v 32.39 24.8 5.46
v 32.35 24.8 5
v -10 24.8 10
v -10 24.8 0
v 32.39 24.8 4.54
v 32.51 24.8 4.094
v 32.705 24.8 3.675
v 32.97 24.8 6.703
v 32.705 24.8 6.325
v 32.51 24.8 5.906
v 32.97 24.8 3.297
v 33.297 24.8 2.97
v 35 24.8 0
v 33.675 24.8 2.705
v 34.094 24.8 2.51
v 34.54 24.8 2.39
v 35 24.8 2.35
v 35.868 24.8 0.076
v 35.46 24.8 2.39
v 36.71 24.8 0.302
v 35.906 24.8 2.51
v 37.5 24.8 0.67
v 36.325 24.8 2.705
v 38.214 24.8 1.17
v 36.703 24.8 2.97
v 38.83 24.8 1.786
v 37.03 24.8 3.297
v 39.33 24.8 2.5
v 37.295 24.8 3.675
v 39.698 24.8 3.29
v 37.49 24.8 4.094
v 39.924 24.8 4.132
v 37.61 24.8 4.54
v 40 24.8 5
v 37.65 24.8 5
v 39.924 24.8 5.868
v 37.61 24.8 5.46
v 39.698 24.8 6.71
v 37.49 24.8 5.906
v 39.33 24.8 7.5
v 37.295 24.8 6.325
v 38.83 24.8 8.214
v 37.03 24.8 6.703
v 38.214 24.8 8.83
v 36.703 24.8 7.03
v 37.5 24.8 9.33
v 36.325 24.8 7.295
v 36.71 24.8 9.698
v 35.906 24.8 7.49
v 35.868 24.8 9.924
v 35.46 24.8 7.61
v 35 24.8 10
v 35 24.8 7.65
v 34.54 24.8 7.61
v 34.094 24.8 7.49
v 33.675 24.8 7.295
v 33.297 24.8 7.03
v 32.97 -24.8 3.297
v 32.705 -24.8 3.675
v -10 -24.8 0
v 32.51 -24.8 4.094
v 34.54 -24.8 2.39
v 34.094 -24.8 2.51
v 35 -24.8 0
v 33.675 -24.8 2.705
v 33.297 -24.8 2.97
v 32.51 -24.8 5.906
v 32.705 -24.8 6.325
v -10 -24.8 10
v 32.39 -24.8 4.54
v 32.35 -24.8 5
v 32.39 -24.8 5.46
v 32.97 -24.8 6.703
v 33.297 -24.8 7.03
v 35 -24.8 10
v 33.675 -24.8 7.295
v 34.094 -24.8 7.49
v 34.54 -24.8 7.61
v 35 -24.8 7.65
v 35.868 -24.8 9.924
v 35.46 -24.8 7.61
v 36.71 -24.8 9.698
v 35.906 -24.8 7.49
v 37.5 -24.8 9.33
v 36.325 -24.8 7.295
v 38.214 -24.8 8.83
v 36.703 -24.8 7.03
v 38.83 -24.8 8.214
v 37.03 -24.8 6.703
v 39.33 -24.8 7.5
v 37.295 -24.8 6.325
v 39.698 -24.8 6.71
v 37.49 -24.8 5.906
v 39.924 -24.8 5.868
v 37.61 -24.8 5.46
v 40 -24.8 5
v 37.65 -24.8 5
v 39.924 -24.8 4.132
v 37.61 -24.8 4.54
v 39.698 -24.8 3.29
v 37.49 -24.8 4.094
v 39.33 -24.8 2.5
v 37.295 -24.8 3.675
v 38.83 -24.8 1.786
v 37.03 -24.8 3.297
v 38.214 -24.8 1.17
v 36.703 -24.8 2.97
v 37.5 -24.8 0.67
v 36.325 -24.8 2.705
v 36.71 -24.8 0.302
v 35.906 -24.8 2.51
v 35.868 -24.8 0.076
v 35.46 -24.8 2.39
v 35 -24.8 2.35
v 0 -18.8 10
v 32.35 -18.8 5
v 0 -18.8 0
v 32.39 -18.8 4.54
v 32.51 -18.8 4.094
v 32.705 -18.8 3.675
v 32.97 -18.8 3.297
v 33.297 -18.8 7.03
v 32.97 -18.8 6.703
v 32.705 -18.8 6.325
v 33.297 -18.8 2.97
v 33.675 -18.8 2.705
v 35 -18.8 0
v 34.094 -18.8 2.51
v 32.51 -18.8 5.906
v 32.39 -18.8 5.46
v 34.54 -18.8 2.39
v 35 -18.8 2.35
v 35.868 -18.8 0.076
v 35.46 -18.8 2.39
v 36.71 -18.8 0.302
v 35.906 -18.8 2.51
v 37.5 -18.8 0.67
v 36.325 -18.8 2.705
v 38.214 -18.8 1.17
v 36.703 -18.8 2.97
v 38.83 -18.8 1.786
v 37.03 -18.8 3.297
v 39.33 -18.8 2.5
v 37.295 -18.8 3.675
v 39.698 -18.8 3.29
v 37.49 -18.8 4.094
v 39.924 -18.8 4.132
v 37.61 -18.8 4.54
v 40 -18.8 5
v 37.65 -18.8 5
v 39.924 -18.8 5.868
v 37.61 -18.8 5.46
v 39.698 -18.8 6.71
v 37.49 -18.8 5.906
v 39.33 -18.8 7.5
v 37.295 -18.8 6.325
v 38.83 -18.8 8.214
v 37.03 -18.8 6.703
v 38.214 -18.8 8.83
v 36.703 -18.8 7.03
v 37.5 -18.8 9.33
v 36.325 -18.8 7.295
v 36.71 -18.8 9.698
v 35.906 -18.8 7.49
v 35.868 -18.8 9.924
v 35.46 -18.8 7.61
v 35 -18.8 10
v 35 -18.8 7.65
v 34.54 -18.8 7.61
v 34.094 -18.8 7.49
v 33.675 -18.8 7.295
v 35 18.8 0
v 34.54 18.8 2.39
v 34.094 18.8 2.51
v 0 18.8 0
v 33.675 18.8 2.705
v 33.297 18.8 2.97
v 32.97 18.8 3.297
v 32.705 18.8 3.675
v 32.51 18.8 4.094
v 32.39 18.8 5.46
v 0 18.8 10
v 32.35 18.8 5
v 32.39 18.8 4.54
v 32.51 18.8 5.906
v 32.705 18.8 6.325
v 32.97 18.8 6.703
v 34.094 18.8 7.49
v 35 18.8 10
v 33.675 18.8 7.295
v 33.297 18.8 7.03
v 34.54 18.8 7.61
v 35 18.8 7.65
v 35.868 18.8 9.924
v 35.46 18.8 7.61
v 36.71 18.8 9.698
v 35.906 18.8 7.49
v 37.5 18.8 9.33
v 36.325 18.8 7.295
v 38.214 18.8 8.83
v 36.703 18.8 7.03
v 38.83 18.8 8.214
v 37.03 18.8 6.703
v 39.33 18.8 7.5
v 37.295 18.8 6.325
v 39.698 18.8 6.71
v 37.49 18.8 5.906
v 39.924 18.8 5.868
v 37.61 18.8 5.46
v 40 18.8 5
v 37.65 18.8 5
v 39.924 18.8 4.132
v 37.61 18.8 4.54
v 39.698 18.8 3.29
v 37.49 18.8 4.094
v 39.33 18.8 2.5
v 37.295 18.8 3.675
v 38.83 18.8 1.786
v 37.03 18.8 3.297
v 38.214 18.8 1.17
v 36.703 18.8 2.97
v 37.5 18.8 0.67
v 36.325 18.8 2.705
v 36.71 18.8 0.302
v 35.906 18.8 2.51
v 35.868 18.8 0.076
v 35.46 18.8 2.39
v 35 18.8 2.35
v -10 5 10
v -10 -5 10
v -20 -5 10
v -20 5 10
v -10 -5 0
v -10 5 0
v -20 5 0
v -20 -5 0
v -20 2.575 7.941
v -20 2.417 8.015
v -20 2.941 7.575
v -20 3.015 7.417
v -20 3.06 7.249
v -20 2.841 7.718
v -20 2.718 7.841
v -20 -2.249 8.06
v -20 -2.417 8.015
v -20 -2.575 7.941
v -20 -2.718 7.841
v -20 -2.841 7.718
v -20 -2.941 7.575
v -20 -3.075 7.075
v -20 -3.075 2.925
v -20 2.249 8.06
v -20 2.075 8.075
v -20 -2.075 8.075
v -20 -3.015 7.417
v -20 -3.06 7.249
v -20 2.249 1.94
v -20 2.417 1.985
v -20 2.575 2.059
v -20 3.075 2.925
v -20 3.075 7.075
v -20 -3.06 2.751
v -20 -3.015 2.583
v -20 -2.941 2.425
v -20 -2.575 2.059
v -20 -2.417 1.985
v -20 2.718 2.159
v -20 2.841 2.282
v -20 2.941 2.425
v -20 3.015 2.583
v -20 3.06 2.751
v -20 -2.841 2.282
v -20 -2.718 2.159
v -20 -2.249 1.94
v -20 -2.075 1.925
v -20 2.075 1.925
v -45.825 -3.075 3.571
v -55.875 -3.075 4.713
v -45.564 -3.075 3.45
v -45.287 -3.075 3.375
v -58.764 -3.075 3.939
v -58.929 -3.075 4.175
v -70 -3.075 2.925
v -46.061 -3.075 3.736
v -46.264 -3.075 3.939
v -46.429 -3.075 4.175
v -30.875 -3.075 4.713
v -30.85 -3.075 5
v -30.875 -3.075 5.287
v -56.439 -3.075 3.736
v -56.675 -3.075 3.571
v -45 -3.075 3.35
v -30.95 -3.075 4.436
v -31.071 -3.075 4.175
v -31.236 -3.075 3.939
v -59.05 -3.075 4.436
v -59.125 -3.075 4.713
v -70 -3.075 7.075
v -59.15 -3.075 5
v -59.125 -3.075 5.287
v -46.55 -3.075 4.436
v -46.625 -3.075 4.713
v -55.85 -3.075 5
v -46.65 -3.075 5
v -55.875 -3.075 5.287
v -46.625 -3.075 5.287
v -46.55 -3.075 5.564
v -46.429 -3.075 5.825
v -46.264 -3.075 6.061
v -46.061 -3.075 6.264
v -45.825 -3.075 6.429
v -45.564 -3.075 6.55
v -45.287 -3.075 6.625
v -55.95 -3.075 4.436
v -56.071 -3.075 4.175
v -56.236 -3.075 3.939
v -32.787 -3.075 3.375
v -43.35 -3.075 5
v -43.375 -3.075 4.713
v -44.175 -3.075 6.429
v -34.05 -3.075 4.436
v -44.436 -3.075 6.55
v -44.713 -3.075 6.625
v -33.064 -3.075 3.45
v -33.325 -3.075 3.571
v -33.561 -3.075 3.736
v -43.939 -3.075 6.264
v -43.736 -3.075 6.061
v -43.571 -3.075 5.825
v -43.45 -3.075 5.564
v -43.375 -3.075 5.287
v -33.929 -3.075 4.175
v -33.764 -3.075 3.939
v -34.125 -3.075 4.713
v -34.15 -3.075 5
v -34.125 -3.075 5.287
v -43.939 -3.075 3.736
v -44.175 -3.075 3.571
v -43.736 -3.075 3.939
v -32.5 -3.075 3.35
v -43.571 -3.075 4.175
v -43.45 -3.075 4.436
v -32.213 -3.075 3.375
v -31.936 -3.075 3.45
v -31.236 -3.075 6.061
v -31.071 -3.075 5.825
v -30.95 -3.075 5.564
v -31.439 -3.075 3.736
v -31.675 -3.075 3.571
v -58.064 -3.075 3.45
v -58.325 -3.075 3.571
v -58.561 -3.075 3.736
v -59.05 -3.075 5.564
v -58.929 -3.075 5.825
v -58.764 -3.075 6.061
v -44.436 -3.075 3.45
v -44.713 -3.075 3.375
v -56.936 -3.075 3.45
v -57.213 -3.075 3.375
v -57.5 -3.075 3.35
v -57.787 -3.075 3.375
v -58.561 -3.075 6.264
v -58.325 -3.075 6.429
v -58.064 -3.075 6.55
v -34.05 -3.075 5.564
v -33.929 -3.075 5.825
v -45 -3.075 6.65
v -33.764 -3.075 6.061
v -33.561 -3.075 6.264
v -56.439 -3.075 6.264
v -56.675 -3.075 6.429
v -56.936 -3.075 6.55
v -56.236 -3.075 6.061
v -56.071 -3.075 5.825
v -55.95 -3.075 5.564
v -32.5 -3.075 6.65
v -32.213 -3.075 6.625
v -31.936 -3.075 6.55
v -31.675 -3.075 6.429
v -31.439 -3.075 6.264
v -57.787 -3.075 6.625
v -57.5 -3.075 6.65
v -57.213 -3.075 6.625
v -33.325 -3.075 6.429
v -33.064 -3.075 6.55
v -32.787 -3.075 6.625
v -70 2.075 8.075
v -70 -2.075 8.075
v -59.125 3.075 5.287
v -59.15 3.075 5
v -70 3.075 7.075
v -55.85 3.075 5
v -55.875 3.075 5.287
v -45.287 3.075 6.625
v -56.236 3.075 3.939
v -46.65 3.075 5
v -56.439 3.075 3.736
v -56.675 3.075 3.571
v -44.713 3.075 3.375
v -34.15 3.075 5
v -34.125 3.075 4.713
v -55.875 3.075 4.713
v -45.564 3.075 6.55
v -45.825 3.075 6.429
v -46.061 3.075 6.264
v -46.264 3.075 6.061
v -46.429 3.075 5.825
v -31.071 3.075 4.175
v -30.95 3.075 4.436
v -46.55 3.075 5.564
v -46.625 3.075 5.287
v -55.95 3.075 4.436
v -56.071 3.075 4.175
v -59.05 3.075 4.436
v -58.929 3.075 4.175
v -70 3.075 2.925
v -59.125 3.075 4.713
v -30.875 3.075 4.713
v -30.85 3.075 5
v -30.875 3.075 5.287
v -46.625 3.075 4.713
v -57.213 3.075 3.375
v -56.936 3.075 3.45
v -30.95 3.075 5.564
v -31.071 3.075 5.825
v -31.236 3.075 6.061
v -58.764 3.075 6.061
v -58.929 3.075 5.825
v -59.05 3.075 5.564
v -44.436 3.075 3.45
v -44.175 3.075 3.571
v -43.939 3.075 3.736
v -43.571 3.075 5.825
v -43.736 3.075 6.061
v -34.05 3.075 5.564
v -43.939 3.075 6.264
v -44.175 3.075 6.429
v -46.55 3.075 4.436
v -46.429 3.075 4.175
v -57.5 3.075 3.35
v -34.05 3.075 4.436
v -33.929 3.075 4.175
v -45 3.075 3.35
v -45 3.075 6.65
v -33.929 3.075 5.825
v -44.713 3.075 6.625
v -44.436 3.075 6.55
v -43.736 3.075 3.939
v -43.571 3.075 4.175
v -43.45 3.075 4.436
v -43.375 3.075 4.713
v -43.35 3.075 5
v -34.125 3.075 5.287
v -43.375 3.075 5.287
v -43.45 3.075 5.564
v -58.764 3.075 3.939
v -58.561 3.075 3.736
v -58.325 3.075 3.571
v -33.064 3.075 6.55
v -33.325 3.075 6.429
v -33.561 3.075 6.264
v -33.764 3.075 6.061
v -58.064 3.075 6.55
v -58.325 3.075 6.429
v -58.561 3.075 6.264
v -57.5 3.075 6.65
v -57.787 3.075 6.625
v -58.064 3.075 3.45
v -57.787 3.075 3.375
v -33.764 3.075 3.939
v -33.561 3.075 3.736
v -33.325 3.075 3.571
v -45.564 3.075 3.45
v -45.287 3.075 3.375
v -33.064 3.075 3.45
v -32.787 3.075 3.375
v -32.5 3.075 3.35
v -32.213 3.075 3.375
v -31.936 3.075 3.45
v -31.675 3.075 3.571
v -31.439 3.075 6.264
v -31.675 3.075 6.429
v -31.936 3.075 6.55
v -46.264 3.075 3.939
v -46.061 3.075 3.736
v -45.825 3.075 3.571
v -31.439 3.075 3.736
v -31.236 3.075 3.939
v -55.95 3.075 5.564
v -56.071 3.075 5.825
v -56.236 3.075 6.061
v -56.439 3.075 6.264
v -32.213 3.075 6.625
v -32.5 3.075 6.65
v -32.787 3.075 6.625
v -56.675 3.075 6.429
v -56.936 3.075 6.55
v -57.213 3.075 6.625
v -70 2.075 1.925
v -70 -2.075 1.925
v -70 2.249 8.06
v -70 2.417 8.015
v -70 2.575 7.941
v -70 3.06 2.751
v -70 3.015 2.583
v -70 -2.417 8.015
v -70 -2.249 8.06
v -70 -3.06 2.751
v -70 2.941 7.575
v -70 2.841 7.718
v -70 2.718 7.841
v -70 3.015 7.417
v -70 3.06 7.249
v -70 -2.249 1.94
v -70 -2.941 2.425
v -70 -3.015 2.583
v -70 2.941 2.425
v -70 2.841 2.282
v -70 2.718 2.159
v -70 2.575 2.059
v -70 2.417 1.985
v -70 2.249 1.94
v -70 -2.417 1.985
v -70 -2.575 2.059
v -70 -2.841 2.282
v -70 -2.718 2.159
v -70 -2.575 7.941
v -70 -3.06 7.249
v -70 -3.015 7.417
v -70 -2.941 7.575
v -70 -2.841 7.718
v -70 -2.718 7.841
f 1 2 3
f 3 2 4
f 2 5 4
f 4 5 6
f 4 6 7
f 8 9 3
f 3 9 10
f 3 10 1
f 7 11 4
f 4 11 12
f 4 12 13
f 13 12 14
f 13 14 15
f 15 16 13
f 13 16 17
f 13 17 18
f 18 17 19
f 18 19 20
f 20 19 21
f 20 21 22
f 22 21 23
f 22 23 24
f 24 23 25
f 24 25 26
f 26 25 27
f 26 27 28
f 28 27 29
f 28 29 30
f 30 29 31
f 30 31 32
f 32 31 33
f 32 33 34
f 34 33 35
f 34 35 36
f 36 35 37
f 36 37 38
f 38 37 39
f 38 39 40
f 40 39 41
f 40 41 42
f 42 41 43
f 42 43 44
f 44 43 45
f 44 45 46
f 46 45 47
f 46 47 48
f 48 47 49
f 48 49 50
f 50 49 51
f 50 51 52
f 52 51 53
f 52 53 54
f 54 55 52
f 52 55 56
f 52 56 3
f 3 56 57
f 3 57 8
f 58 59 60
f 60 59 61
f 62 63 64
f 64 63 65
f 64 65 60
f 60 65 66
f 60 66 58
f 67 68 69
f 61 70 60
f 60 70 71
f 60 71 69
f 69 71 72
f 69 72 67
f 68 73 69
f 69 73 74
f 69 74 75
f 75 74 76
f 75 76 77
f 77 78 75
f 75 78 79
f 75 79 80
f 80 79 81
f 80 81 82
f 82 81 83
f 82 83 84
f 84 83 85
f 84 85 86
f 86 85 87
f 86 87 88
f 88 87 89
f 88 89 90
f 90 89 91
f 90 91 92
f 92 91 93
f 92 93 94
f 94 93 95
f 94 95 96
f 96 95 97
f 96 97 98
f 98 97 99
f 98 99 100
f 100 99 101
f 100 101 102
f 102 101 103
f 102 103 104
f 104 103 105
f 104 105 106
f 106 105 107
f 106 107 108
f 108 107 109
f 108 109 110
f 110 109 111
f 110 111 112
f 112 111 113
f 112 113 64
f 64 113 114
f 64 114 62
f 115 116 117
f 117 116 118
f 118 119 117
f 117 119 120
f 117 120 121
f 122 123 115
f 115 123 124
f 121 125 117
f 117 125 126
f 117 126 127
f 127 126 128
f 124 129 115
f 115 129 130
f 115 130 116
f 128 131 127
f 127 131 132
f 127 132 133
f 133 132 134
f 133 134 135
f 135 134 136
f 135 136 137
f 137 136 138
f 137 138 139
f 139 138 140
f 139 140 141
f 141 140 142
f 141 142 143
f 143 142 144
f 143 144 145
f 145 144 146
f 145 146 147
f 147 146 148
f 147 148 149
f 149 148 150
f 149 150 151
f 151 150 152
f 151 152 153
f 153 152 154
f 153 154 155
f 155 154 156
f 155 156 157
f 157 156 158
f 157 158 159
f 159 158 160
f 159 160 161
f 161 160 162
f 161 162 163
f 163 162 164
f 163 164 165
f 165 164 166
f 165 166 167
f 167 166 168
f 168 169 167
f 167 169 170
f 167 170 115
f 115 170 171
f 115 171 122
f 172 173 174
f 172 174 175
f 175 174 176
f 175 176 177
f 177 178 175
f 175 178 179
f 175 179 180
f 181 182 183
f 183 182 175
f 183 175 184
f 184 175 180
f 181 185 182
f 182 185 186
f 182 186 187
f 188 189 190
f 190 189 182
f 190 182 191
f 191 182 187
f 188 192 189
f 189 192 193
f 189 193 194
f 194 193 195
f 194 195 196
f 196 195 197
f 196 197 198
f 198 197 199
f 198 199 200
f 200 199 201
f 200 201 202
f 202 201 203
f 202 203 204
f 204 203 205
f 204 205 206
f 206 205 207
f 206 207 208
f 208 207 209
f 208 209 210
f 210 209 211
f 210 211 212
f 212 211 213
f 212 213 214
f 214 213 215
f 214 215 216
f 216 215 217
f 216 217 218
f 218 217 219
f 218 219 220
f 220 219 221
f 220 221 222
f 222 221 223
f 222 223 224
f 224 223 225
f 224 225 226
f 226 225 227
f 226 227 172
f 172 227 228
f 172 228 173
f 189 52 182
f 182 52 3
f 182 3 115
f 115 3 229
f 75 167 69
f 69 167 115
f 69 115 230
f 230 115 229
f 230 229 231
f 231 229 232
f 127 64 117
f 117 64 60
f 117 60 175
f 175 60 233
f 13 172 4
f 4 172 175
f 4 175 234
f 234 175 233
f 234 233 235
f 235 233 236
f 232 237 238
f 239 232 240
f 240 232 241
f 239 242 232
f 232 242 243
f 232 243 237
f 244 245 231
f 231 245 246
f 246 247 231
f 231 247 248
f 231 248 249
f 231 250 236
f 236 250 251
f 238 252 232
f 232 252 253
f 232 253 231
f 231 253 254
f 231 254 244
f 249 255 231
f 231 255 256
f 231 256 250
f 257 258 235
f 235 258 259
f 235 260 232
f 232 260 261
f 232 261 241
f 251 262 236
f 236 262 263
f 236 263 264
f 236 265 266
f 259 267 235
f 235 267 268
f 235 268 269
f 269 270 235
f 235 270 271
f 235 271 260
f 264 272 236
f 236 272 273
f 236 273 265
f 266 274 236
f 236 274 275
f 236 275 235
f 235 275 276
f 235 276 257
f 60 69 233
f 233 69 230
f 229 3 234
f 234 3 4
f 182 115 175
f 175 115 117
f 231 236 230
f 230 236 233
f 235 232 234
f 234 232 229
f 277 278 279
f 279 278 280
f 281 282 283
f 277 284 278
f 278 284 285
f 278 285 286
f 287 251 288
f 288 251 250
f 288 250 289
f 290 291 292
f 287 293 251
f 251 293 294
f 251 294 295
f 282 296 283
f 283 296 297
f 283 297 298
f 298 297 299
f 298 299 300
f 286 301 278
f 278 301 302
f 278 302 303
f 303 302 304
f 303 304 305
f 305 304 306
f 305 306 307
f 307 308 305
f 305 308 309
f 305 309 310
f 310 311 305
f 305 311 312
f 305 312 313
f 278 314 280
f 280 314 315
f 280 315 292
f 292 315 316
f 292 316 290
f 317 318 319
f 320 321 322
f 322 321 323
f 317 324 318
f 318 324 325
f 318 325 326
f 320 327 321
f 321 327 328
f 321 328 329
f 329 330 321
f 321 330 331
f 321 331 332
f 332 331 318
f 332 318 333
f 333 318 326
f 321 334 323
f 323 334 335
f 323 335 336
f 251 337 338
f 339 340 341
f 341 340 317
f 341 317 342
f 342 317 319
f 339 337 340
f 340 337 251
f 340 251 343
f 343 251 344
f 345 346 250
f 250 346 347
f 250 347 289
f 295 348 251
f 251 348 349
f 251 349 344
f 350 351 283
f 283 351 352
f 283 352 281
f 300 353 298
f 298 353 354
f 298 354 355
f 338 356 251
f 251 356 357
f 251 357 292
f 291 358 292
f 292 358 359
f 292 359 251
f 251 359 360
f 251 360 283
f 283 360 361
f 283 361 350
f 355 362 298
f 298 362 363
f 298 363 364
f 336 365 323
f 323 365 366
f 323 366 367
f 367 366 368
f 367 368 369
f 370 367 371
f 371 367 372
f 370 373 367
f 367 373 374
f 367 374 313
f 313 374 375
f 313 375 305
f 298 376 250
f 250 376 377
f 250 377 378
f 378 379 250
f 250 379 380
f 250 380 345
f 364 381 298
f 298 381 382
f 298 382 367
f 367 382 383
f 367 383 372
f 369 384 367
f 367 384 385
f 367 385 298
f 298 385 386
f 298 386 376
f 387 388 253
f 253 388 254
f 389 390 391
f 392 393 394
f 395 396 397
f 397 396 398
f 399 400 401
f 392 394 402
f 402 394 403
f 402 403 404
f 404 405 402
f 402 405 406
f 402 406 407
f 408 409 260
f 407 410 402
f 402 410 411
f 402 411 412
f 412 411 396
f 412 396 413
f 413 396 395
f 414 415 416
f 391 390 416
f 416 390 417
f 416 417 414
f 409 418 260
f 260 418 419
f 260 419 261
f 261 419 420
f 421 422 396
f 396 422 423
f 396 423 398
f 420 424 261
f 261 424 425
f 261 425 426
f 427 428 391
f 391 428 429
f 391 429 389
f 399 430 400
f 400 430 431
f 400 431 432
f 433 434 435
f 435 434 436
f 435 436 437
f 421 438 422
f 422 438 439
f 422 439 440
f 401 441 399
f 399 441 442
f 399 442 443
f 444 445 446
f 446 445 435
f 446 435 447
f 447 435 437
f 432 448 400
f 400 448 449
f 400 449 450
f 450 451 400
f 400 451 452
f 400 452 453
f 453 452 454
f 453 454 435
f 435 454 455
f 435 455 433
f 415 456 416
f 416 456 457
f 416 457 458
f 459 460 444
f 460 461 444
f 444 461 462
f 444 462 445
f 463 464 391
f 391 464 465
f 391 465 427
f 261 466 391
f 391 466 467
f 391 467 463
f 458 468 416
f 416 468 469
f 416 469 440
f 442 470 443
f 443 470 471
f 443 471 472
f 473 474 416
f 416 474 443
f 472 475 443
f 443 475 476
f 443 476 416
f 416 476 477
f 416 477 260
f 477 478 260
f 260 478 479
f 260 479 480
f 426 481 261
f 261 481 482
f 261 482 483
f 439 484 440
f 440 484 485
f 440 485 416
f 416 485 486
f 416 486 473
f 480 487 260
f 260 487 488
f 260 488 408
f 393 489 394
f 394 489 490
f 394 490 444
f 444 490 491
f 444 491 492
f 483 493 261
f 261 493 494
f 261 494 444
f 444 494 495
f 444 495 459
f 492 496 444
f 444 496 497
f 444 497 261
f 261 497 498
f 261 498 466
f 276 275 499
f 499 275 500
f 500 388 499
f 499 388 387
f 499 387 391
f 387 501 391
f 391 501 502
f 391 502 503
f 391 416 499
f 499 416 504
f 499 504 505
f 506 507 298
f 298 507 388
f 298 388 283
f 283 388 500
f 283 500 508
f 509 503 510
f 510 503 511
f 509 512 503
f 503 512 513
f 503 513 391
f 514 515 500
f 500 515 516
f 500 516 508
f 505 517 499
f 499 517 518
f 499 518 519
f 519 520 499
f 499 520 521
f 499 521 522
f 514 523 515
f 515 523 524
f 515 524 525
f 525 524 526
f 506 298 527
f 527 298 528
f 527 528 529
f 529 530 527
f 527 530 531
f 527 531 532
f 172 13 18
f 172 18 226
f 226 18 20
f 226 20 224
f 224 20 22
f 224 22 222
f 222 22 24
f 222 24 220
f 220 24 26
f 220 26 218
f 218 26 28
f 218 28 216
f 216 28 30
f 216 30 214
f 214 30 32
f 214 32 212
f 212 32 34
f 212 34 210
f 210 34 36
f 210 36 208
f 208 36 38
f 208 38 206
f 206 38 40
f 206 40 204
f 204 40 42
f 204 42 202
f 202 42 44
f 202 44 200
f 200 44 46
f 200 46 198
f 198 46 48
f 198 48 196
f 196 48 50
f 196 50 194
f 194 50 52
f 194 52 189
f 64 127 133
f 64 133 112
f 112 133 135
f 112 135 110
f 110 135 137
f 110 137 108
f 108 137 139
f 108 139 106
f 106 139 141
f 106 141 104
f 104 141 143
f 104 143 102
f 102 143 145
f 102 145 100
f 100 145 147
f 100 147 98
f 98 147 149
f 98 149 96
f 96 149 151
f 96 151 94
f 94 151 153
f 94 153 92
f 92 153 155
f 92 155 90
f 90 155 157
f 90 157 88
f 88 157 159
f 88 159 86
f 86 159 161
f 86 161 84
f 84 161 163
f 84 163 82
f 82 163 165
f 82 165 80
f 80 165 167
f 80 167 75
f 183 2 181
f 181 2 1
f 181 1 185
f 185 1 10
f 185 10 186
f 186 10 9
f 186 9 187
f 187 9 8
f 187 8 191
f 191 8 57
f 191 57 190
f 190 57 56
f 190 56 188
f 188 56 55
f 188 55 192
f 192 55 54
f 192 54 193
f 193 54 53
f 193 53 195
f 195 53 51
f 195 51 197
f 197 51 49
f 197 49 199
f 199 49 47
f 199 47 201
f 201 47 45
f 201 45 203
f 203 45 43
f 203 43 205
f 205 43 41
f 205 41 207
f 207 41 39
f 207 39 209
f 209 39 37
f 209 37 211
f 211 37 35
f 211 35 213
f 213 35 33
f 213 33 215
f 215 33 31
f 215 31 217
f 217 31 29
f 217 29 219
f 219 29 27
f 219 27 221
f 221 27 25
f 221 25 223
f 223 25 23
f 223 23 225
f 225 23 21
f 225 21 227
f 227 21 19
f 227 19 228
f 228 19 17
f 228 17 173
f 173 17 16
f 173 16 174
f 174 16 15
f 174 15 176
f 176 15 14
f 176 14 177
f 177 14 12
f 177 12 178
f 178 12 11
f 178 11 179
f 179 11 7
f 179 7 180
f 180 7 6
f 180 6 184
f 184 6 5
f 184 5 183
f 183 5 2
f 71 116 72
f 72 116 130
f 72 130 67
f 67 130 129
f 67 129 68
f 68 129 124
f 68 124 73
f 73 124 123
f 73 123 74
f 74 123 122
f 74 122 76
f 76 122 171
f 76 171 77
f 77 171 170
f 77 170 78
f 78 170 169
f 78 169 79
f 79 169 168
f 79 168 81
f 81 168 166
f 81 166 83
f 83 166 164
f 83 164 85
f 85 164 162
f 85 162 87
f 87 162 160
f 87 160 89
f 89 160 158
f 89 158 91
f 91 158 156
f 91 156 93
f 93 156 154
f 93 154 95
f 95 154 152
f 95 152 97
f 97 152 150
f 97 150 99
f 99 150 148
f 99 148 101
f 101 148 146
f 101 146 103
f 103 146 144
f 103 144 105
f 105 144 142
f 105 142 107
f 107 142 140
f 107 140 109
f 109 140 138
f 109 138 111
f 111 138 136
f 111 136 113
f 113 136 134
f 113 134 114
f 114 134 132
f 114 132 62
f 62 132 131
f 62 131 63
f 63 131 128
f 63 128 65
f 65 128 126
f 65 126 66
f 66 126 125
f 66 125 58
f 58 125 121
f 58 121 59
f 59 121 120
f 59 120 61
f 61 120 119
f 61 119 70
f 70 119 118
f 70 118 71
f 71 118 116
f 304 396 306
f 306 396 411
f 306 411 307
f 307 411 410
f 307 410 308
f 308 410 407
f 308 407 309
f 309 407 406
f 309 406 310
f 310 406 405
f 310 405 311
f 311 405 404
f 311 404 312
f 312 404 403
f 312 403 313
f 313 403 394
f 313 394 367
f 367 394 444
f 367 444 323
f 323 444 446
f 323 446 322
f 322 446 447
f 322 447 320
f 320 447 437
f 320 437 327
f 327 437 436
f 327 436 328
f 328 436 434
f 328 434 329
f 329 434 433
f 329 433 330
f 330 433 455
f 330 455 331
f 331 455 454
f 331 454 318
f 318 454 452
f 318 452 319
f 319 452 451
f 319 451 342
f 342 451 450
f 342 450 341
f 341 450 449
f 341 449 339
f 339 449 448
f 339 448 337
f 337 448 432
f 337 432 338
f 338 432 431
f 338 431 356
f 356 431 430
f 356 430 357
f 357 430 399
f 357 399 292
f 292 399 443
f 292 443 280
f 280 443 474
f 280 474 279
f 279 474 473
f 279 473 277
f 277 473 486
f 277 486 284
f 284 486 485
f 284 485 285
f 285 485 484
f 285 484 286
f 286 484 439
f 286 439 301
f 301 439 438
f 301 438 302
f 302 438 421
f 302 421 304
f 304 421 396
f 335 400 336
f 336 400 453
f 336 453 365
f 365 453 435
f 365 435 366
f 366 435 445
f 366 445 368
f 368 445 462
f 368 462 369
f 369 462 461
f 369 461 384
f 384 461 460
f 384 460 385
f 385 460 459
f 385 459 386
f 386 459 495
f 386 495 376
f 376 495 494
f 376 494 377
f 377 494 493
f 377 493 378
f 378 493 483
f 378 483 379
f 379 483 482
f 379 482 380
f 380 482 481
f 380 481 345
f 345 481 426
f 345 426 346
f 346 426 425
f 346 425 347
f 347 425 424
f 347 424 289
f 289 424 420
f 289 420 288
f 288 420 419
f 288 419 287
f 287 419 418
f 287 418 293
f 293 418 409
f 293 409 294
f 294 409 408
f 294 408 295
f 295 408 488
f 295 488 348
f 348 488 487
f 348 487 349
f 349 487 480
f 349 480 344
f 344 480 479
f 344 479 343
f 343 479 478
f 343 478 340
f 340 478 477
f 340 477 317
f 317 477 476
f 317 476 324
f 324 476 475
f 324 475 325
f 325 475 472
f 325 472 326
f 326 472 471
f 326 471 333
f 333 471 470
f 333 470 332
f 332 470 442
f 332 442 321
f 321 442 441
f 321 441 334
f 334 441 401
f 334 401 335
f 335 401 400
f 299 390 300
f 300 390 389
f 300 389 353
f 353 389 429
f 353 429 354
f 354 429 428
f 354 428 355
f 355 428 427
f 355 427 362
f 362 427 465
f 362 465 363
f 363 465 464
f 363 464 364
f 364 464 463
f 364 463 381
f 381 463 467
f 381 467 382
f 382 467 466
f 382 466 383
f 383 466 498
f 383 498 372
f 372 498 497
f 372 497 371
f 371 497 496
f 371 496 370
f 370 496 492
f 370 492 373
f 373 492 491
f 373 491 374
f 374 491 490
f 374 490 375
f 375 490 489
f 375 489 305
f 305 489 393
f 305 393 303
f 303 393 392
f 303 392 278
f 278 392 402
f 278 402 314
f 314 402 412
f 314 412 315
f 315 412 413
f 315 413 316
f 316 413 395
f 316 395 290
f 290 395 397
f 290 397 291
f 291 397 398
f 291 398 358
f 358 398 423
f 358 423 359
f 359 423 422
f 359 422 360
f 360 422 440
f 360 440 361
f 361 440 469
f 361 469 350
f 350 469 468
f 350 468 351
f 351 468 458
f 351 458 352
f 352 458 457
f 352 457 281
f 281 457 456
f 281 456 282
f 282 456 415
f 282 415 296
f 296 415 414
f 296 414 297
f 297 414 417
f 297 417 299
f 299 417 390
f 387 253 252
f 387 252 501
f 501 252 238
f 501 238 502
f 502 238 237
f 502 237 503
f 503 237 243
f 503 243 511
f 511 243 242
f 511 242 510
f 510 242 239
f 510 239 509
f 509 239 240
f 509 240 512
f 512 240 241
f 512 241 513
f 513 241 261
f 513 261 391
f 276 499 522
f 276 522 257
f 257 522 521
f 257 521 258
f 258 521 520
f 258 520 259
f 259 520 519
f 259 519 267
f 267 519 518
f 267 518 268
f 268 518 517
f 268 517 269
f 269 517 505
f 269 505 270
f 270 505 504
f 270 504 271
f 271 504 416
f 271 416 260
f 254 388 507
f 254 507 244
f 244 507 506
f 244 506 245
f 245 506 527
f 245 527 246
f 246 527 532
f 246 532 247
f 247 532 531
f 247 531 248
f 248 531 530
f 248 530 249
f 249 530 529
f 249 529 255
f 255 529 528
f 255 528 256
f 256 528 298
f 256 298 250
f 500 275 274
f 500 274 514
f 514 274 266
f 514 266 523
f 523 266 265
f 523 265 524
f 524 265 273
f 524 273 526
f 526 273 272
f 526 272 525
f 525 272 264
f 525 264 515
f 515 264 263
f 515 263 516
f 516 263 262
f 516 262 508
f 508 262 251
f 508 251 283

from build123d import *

# Parameters (mm, degrees)
EXTRUDE_1_DEPTH     = 10
SKETCH_2_W          = 10
SKETCH_2_H          = 10
SKETCH_2_W_2        = 6.15
SKETCH_2_H_2        = 6.15
EXTRUDE_2_DEPTH     = 10
EXTRUDE_START       = 10
SKETCH_2_3_W        = 6.15
SKETCH_2_3_H        = 6.15
EXTRUDE_3_DEPTH     = 50
CUT_EXTRUDE_1_DEPTH = 87.372217755
SKETCH_4_R          = 1.65
CUT_EXTRUDE_2_DEPTH = 77.00668145
FILLET_1_R          = 1


with BuildPart() as part:
    # 草图1 → 凸台-拉伸1 (new body)
    with BuildSketch(Plane.XY):
        Polygon((0, 18.8), (0, -18.8), (40, -18.8), (40, -24.8), (-10, -24.8), (-10, 24.8), (40, 24.8), (40, 18.8), align=None)
    extrude(amount=EXTRUDE_1_DEPTH)

    # 草图2 → 凸台-拉伸2 (add)
    # profile 1 of 2: a face of its own
    with BuildSketch(Plane.ZY.offset(10)):
        with Locations((5, 0)):
            Rectangle(SKETCH_2_W, SKETCH_2_H)
        with Locations((5, 0)):
            Rectangle(SKETCH_2_W_2, SKETCH_2_H_2, mode=Mode.SUBTRACT)
    # profile 2 of 2: a face of its own
    with BuildSketch(Plane.ZY.offset(10)):
        with Locations((5, 0)):
            Rectangle(SKETCH_2_W_2, SKETCH_2_H_2)
    extrude(amount=EXTRUDE_2_DEPTH)

    # 草图2<3> → 凸台-拉伸3 (add)
    with BuildSketch(Plane.ZY.offset(10).offset(EXTRUDE_START)):
        with Locations((5, 0)):
            Rectangle(SKETCH_2_3_W, SKETCH_2_3_H)
    extrude(amount=EXTRUDE_3_DEPTH)

    # 草图3 → 切除-拉伸1 (cut, through all)
    with BuildSketch(Plane(origin=(0, 24.8, 0), x_dir=(1, 0, 0), z_dir=(0, 1, 0))):
        with BuildLine():
            ThreePointArc((32.35, -5), (35, -7.65), (37.65, -5))
            Line((37.65, -5), (32.35, -5))
        make_face()
        with BuildLine():
            Line((32.35, -5), (37.65, -5))
            ThreePointArc((37.65, -5), (35, -2.35), (32.35, -5))
        make_face()
        with BuildLine():
            ThreePointArc((35, 0), (38.535533906, -1.464466094), (40, -5))
            Line((40, -5), (40, 0))
            Line((40, 0), (35, 0))
        make_face()
        with BuildLine():
            Line((40, -10), (40, -5))
            ThreePointArc((40, -5), (38.535533906, -8.535533906), (35, -10))
            Line((35, -10), (40, -10))
        make_face()
    extrude(amount=-CUT_EXTRUDE_1_DEPTH, mode=Mode.SUBTRACT)

    # 草图4 → 切除-拉伸2 (cut, through all)
    with BuildSketch(Plane(origin=(0, 3.075, 0), x_dir=(1, 0, 0), z_dir=(0, 1, 0))):
        with Locations(Location((-45, -5, 0), (0, 0, 180))):
            Circle(SKETCH_4_R)
        with Locations(Location((-32.5, -5, 0), (0, 0, 180))):
            Circle(SKETCH_4_R)
        with Locations(Location((-57.5, -5, 0), (0, 0, 180))):
            Circle(SKETCH_4_R)
    extrude(amount=-CUT_EXTRUDE_2_DEPTH, mode=Mode.SUBTRACT)

    # 圆角1
    fillet_1_edges = [part.edges().sort_by_distance(p)[0] for p in [
        (-45, -3.075, 1.925),
        (-45, -3.075, 8.075),
        (-45, 3.075, 8.075),
        (-45, 3.075, 1.925),
    ]]
    fillet(fillet_1_edges, radius=FILLET_1_R)


solid = part.part
